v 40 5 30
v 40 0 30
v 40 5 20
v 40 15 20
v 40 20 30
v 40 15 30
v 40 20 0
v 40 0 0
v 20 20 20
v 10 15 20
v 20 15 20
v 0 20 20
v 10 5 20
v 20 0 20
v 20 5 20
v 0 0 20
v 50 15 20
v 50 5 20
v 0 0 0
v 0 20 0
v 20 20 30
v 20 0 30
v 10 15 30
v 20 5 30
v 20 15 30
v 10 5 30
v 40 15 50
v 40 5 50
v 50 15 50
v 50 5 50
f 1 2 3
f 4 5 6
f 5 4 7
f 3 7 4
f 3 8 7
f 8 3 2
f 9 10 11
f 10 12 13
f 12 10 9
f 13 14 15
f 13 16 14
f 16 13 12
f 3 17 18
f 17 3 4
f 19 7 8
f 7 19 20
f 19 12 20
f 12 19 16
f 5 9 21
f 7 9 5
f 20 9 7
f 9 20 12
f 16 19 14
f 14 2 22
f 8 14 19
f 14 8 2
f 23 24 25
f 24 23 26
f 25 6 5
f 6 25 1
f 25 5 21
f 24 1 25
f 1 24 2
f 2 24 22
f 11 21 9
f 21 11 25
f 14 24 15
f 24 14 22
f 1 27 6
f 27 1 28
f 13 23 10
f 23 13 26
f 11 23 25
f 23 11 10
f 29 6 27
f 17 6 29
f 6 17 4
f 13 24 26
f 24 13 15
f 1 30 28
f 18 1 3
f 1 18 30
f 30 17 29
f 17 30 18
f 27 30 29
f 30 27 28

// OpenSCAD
// Base block module
module base_block() {
    // Main rectangular block
    cube([40, 20, 20], center = false);
    // Protruding rectangular section
    translate([20, 0, 20])
        cube([20, 20, 10], center = false);
}

// L-shaped connector module
module l_shaped_connector() {
    // Horizontal arm
    cube([30, 10, 10], center = false);
    // Vertical arm repositioned to lie horizontally
    translate([30, 0, 0])
        cube([10, 10, 30], center = false);
}

// Assembly
module assembly() {
    // Layer 1: Base block
    base_block();

    // Layer 2: L-shaped connector repositioned horizontally
    translate([10, 5, 20]) // Adjusted positioning to lie horizontally on the base block
        l_shaped_connector();
}

// Render the assembly
assembly();
